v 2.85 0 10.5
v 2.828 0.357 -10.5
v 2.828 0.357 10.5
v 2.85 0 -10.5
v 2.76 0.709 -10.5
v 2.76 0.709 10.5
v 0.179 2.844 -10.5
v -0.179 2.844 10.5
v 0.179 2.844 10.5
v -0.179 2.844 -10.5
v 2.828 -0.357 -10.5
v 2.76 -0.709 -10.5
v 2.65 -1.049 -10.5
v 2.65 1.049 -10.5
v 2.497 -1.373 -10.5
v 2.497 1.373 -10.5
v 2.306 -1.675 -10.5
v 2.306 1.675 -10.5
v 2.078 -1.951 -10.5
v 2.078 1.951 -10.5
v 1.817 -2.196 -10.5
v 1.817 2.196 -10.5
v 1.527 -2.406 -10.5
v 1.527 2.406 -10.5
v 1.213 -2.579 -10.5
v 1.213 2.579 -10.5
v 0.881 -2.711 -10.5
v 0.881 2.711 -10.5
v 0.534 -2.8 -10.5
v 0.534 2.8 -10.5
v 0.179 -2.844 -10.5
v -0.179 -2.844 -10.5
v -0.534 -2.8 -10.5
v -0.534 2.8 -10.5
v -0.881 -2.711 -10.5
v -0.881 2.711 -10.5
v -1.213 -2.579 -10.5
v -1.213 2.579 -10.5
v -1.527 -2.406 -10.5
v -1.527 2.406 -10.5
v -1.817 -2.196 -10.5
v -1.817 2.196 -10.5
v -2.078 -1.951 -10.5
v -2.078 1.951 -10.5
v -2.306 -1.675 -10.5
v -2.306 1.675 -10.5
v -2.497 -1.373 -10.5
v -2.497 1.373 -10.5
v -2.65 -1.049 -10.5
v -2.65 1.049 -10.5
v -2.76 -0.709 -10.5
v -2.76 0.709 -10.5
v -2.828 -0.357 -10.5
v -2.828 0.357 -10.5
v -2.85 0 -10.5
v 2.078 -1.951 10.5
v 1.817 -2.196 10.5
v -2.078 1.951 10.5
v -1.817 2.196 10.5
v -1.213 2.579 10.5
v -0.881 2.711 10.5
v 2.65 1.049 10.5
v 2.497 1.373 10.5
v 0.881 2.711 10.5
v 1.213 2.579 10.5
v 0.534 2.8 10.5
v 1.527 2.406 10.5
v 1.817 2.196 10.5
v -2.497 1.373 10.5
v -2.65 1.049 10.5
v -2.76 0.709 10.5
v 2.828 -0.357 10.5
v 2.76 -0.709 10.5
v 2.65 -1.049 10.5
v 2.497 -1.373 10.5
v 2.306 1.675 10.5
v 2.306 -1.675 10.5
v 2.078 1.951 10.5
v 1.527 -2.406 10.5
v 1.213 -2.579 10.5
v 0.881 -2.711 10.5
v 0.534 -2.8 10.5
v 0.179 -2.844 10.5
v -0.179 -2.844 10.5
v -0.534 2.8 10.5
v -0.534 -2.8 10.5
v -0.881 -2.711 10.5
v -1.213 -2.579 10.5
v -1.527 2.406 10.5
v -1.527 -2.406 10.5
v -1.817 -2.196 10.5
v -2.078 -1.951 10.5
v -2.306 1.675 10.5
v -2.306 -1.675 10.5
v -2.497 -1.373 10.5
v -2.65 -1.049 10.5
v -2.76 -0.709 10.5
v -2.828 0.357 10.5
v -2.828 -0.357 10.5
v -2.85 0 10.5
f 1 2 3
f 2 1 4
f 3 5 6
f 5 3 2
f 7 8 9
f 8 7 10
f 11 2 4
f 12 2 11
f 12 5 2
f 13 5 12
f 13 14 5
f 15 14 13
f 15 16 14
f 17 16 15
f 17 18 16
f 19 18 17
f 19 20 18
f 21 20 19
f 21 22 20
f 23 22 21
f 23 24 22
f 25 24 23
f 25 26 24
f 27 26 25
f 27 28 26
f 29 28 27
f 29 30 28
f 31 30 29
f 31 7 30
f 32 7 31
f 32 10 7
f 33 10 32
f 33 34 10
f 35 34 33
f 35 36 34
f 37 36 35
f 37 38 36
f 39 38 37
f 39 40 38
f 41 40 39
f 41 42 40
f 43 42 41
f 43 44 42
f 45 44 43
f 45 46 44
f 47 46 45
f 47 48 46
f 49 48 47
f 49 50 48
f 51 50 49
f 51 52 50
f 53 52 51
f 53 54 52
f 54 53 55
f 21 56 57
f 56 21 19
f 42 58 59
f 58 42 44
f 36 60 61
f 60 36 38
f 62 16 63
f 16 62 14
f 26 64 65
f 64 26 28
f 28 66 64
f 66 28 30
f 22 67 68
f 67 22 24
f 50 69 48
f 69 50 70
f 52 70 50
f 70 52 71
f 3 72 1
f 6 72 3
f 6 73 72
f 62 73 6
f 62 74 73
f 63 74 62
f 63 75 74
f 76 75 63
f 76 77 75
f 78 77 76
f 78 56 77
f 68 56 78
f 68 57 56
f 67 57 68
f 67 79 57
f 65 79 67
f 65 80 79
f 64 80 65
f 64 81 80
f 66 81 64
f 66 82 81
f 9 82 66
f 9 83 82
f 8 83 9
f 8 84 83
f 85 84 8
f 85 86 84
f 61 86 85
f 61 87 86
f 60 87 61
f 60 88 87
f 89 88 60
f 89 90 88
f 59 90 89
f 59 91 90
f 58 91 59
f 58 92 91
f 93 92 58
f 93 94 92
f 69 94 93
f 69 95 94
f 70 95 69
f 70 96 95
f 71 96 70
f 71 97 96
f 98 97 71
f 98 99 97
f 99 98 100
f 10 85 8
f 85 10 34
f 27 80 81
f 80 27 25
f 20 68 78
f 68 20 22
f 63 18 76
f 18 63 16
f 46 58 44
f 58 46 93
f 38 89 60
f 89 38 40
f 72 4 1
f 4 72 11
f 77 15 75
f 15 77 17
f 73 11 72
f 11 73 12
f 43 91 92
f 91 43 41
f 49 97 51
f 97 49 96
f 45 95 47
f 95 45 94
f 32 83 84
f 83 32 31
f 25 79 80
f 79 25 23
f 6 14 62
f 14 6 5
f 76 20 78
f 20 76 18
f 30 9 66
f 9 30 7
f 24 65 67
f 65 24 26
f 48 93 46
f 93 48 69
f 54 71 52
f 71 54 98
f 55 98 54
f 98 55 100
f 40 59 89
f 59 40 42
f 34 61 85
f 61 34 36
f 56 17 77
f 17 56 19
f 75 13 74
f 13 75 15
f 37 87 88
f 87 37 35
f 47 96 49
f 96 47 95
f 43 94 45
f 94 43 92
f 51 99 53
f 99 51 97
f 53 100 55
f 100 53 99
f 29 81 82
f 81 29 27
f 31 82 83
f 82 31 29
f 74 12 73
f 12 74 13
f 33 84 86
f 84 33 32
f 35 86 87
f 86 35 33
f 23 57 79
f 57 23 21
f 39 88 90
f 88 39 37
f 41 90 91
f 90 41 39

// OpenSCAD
$fn = 50;


difference() {
	union() {
		translate(v = [0, 0, -10.5000000000]) {
			cylinder(h = 21, r = 2.8500000000);
		}
	}
	union() {
		translate(v = [0, 0, -100.0000000000]) {
			cylinder(h = 200, r = 0);
		}
	}
}
